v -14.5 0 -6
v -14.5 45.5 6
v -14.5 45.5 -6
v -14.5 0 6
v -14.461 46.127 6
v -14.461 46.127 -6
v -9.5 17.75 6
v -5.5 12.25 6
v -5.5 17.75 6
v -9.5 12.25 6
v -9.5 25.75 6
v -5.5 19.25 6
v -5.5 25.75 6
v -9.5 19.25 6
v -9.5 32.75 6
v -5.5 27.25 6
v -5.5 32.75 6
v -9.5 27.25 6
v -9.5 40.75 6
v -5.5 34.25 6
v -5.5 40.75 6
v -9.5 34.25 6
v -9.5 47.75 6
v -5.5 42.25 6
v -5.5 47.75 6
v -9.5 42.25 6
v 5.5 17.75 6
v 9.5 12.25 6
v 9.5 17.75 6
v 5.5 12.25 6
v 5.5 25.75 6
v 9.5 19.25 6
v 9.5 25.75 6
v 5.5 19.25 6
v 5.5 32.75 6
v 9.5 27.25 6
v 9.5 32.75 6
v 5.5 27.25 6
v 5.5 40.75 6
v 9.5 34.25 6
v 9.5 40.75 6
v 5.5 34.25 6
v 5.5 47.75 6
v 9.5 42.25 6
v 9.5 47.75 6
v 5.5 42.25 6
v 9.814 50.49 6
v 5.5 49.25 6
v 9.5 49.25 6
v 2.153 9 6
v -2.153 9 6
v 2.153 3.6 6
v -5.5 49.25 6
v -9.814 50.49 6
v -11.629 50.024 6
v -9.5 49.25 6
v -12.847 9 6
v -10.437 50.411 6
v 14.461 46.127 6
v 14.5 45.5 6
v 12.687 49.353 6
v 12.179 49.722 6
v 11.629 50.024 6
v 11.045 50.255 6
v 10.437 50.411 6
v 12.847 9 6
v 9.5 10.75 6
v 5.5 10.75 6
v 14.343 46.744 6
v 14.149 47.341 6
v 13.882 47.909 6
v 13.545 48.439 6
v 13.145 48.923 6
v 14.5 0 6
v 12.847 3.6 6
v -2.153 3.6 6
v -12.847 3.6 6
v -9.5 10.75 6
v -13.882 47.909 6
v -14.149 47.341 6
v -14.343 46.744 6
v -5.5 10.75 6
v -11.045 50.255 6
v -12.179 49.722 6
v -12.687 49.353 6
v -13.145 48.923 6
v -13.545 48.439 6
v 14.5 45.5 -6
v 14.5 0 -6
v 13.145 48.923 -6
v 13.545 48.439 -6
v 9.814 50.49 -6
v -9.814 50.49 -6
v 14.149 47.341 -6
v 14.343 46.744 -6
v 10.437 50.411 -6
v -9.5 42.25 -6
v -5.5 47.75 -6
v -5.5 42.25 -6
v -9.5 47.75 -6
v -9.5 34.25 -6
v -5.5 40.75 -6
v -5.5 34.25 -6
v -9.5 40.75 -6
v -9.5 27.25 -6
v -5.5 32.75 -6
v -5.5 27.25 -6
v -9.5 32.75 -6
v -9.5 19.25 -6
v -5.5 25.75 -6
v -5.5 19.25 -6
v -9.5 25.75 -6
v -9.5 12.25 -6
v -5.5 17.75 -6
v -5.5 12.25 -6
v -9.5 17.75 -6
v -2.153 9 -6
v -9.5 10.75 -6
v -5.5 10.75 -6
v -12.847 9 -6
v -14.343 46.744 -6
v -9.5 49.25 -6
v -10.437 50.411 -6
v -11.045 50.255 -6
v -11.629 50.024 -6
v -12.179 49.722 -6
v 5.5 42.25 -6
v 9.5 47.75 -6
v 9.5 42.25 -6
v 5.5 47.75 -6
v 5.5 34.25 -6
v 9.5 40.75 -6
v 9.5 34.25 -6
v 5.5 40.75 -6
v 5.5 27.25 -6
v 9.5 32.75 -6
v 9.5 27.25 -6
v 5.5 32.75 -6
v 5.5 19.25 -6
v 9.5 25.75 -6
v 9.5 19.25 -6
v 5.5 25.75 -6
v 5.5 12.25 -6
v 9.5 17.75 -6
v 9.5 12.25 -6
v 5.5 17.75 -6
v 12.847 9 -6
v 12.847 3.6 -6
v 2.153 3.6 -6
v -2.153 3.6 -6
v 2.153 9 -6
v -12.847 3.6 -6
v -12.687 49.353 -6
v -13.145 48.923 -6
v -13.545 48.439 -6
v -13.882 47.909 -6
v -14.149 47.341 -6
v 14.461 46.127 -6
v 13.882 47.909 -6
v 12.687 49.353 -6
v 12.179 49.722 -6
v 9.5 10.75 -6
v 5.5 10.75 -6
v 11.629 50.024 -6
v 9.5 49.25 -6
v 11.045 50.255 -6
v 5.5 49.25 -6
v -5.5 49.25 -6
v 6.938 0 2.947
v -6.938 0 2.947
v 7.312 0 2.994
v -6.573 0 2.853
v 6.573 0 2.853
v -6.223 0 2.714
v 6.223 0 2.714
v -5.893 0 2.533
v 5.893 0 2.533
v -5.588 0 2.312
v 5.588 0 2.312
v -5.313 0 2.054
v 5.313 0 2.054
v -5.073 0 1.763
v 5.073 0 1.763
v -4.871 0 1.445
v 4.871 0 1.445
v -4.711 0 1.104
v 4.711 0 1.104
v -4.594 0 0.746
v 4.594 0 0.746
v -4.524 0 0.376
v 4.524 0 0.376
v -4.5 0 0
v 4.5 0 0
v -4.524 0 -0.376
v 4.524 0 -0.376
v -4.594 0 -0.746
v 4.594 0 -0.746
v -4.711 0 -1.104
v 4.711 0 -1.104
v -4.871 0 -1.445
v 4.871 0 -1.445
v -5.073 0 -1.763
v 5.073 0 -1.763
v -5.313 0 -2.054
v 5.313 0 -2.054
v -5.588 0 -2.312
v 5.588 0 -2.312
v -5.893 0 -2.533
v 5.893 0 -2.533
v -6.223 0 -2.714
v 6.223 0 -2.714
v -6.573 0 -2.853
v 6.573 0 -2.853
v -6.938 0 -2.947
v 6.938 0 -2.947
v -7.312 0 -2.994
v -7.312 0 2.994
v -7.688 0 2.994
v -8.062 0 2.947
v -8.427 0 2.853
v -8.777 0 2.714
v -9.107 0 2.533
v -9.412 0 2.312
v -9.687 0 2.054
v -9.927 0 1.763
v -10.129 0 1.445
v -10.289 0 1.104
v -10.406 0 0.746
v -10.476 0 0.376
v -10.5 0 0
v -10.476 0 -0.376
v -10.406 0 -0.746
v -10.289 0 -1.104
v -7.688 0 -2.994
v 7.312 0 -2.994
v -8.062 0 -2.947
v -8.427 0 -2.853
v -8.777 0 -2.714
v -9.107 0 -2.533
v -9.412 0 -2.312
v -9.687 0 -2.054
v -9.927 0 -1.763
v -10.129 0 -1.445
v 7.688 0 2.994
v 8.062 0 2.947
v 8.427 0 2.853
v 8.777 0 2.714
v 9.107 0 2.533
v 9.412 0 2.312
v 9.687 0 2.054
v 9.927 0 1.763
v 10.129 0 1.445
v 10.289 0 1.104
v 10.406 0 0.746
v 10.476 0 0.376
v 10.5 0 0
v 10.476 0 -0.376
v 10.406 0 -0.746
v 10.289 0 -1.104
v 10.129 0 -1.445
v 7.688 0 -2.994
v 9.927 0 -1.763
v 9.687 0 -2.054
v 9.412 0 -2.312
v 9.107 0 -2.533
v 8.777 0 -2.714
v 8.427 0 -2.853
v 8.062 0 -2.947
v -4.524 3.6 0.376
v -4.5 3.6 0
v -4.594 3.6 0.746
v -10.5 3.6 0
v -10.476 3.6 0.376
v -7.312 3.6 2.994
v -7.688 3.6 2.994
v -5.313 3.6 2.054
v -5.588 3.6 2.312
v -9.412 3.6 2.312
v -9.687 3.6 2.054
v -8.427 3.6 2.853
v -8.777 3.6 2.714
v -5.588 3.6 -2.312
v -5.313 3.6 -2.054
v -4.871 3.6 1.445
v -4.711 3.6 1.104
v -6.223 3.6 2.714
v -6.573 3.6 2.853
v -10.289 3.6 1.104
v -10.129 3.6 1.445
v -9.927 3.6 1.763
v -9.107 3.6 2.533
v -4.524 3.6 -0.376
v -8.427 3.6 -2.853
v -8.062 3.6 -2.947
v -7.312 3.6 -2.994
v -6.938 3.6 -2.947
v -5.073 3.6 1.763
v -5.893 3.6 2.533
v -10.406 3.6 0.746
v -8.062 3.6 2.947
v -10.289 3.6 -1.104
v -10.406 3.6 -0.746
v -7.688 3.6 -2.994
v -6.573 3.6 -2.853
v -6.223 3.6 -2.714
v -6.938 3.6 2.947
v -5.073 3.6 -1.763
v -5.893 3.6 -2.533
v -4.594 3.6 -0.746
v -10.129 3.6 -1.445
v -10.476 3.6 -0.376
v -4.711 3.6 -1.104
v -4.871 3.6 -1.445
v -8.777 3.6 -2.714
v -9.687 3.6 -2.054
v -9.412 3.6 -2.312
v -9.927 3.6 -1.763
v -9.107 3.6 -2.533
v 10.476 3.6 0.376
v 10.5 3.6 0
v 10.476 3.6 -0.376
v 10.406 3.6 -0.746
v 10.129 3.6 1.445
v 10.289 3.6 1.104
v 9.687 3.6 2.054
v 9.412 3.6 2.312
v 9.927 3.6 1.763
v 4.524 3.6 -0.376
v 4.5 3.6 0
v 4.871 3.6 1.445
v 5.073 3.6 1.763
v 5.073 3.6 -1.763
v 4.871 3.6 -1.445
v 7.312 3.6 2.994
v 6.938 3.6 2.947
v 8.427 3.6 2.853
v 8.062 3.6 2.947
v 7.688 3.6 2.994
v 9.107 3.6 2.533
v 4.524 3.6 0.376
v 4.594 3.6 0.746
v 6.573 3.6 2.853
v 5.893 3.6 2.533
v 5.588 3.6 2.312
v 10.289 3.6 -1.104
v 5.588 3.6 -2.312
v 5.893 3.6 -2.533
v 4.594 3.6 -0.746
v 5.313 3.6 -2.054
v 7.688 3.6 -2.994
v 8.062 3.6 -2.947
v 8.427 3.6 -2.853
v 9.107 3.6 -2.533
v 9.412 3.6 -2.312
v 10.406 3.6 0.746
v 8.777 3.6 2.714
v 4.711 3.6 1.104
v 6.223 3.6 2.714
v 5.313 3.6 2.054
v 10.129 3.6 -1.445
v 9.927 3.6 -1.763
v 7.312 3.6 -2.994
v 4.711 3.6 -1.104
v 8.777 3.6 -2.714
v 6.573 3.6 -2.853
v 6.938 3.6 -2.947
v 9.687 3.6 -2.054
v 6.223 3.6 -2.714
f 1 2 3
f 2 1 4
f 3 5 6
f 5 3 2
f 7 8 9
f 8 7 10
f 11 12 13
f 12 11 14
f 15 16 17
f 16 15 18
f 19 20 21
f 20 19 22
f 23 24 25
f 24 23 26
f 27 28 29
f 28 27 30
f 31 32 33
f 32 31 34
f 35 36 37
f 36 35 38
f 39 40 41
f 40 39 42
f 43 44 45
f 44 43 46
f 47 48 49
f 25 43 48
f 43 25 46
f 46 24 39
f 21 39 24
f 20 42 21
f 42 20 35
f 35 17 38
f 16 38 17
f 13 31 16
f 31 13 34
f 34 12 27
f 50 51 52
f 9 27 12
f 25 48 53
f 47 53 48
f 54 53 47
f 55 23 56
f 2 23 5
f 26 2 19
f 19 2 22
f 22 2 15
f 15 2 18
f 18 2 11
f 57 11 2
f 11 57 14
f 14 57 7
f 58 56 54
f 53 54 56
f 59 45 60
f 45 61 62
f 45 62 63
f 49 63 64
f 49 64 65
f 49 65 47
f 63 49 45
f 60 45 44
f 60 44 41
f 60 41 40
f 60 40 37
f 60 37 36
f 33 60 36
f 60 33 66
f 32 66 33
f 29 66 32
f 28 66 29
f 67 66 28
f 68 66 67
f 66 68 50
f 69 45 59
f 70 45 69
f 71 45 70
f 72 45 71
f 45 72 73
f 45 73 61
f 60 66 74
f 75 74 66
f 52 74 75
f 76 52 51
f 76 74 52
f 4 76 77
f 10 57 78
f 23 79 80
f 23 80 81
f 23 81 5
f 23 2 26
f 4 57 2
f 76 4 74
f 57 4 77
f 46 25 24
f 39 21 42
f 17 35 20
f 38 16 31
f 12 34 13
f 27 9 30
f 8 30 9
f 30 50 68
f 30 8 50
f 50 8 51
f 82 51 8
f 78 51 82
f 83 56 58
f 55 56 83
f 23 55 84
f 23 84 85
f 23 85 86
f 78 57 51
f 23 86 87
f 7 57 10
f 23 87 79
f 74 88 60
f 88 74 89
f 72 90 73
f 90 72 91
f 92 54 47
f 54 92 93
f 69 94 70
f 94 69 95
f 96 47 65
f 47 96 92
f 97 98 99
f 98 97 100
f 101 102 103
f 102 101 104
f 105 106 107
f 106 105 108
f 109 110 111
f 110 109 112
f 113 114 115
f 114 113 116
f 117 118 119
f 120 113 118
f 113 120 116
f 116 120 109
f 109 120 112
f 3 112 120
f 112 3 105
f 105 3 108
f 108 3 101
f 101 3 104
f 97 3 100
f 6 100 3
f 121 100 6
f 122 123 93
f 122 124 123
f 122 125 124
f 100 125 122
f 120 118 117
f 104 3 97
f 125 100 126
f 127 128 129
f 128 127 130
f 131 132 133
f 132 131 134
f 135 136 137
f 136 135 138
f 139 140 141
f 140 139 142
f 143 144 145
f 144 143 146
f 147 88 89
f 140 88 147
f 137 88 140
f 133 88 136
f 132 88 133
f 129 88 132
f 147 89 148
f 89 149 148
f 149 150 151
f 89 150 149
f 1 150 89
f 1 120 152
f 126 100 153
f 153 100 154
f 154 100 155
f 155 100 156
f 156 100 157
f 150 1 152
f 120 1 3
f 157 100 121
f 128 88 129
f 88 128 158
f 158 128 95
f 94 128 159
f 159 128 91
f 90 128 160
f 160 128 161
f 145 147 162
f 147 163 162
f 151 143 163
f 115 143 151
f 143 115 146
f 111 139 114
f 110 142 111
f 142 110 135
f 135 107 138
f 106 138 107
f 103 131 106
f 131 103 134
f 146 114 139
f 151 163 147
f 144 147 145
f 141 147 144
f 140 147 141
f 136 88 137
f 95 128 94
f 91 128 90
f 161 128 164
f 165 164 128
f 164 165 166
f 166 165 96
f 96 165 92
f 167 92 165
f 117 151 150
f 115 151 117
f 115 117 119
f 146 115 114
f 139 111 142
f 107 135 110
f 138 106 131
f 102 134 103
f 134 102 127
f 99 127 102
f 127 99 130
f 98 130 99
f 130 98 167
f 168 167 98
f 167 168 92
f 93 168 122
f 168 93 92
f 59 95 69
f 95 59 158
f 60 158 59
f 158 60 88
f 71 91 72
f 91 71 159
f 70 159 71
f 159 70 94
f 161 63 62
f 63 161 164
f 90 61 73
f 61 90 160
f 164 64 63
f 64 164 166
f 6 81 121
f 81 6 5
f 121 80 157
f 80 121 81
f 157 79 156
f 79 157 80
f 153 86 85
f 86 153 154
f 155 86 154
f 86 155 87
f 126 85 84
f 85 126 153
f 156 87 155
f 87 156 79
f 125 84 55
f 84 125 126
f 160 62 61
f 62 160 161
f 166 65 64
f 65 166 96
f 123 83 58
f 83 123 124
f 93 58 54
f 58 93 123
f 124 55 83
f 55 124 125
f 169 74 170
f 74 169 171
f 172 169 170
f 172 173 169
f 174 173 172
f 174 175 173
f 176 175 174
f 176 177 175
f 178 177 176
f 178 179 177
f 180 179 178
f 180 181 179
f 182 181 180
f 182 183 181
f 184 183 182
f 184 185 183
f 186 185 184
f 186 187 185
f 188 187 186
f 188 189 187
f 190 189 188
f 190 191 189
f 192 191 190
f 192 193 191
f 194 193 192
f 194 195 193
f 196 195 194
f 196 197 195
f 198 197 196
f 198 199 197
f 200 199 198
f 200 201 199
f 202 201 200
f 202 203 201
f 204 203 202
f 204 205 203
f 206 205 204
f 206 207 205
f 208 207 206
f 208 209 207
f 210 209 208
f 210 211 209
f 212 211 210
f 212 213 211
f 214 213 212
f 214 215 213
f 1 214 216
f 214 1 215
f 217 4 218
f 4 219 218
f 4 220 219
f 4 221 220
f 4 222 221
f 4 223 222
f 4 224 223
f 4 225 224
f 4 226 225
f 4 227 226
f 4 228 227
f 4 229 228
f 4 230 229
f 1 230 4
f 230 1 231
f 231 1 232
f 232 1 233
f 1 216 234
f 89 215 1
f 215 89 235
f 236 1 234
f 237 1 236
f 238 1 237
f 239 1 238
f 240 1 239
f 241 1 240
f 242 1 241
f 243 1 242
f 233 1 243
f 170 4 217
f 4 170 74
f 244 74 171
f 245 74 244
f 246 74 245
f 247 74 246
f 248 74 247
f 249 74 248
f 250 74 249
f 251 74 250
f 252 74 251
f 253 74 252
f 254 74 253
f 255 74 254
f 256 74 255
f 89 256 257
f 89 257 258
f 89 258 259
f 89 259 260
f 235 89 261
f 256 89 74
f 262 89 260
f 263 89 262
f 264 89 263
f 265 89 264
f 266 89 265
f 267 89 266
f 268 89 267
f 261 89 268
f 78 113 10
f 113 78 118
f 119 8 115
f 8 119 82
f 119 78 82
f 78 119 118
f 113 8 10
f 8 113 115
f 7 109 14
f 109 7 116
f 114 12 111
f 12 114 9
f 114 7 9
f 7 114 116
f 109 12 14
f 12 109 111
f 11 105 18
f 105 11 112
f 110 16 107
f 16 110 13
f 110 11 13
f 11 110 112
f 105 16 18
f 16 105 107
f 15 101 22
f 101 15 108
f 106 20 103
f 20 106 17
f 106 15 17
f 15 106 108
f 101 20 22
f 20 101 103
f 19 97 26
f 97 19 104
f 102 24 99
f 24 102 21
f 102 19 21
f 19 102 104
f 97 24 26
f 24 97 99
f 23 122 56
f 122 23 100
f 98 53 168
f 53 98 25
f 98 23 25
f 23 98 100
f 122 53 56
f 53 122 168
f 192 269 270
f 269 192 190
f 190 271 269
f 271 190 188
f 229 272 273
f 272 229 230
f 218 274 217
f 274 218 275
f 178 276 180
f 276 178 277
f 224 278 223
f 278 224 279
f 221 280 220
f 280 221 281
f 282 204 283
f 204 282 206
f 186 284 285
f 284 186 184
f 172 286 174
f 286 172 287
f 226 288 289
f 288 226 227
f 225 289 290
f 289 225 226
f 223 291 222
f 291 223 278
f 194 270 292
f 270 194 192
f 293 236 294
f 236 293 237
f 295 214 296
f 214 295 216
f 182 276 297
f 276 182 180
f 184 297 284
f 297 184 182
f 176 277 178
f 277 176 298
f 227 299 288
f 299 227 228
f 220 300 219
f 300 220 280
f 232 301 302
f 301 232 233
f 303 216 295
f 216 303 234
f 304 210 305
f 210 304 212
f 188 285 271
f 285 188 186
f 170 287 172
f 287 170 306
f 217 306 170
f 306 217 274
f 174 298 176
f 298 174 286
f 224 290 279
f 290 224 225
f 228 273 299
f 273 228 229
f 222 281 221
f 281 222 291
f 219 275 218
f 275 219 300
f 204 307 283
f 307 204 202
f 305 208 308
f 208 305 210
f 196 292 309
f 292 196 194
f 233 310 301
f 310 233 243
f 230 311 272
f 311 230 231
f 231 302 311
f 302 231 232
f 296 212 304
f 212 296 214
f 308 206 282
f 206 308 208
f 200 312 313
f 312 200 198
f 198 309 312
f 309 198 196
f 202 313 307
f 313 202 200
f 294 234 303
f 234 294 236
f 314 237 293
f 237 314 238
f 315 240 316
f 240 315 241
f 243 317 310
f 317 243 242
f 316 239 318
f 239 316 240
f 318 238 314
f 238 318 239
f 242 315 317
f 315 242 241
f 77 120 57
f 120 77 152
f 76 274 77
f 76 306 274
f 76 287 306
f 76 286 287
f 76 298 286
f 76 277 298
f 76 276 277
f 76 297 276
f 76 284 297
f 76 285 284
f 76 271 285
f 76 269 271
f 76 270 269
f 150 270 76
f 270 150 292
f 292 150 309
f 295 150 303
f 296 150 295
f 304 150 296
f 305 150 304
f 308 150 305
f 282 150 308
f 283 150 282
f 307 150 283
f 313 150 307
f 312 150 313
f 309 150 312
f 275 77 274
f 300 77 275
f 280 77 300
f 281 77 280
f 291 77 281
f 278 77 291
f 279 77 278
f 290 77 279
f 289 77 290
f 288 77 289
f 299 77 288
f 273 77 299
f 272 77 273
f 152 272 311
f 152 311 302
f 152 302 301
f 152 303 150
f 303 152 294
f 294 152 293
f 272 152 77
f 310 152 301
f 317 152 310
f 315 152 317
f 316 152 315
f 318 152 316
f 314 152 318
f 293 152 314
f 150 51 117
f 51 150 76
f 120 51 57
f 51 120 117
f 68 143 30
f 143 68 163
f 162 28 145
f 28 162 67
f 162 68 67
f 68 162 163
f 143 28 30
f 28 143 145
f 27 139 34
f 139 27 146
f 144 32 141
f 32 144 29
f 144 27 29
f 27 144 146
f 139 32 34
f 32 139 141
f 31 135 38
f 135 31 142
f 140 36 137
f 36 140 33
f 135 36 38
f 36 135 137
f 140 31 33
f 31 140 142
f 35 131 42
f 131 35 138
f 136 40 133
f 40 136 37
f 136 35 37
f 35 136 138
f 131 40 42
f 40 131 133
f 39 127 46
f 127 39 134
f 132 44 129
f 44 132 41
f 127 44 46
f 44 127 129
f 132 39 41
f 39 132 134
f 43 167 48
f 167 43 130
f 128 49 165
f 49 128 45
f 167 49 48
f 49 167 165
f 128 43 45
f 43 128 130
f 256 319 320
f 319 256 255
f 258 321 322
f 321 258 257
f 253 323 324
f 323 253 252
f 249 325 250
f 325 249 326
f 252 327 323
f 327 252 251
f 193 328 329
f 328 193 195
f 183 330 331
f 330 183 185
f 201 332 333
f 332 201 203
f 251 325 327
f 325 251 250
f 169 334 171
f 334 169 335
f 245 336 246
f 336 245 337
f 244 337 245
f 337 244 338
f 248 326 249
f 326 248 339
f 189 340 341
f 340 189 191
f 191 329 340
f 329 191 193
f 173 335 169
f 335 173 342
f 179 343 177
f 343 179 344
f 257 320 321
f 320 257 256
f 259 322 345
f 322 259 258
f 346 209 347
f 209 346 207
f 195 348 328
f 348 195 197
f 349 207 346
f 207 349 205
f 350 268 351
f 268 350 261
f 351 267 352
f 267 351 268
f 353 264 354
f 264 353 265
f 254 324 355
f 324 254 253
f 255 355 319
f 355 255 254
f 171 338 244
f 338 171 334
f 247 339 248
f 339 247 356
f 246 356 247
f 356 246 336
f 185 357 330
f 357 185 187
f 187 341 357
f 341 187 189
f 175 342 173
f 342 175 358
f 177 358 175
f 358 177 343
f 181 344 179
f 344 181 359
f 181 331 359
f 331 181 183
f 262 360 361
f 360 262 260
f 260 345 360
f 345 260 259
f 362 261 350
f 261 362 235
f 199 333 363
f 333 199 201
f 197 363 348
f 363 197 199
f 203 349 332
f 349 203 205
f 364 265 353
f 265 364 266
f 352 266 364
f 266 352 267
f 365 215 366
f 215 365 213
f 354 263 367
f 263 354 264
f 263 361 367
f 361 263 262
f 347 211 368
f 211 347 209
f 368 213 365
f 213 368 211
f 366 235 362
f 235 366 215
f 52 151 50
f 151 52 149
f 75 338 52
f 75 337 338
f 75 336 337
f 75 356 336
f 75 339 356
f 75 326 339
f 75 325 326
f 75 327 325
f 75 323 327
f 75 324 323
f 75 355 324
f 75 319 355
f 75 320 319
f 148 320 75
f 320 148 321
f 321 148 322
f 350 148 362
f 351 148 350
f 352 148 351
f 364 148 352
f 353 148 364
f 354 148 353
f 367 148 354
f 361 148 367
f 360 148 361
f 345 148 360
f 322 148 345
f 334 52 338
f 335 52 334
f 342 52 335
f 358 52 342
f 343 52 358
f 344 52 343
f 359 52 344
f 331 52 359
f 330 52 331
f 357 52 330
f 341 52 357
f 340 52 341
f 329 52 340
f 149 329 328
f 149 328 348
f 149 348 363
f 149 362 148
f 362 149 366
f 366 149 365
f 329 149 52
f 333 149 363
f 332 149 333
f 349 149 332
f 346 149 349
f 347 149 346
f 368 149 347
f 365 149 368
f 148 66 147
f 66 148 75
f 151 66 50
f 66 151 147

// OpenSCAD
$fn = 50;


difference() {
	union() {
		translate(v = [0, 28.5000000000, -6.0000000000]) {
			rotate(a = [0, 0, 0]) {
				hull() {
					translate(v = [-9.5000000000, 17.0000000000, 0]) {
						rotate(a = [0, 0, 0]) {
							translate(v = [0, 0, 0]) {
								rotate(a = [0, 0, 0]) {
									cylinder(h = 12, r = 5);
								}
							}
						}
					}
					translate(v = [9.5000000000, 17.0000000000, 0]) {
						rotate(a = [0, 0, 0]) {
							translate(v = [0, 0, 0]) {
								rotate(a = [0, 0, 0]) {
									cylinder(h = 12, r = 5);
								}
							}
						}
					}
					translate(v = [-9.5000000000, -17.0000000000, 0]) {
						rotate(a = [0, 0, 0]) {
							translate(v = [0, 0, 0]) {
								rotate(a = [0, 0, 0]) {
									cylinder(h = 12, r = 5);
								}
							}
						}
					}
					translate(v = [9.5000000000, -17.0000000000, 0]) {
						rotate(a = [0, 0, 0]) {
							translate(v = [0, 0, 0]) {
								rotate(a = [0, 0, 0]) {
									cylinder(h = 12, r = 5);
								}
							}
						}
					}
				}
			}
		}
		translate(v = [-14.5000000000, 0, -6.0000000000]) {
			rotate(a = [0, 0, 0]) {
				cube(size = [29, 13.5000000000, 12]);
			}
		}
	}
	union() {
		translate(v = [-9.5000000000, 10.7500000000, -50]) {
			rotate(a = [0, 0, 0]) {
				cube(size = [4, 1.5000000000, 100]);
			}
		}
		translate(v = [-9.5000000000, 17.7500000000, -50]) {
			rotate(a = [0, 0, 0]) {
				cube(size = [4, 1.5000000000, 100]);
			}
		}
		translate(v = [-9.5000000000, 25.7500000000, -50]) {
			rotate(a = [0, 0, 0]) {
				cube(size = [4, 1.5000000000, 100]);
			}
		}
		translate(v = [-9.5000000000, 32.7500000000, -50]) {
			rotate(a = [0, 0, 0]) {
				cube(size = [4, 1.5000000000, 100]);
			}
		}
		translate(v = [-9.5000000000, 40.7500000000, -50]) {
			rotate(a = [0, 0, 0]) {
				cube(size = [4, 1.5000000000, 100]);
			}
		}
		translate(v = [-9.5000000000, 47.7500000000, -50]) {
			rotate(a = [0, 0, 0]) {
				cube(size = [4, 1.5000000000, 100]);
			}
		}
		translate(v = [-7.5000000000, 8, 0]) {
			rotate(a = [90, 0, 0]) {
				cylinder(h = 8, r = 3.0000000000);
			}
		}
		translate(v = [-12.8466204506, 9, -25]) {
			rotate(a = [90, 0, 0]) {
				cube(size = [10.6932409012, 100, 5.4000000000]);
			}
		}
		translate(v = [5.5000000000, 10.7500000000, -50]) {
			rotate(a = [0, 0, 0]) {
				cube(size = [4, 1.5000000000, 100]);
			}
		}
		translate(v = [5.5000000000, 17.7500000000, -50]) {
			rotate(a = [0, 0, 0]) {
				cube(size = [4, 1.5000000000, 100]);
			}
		}
		translate(v = [5.5000000000, 25.7500000000, -50]) {
			rotate(a = [0, 0, 0]) {
				cube(size = [4, 1.5000000000, 100]);
			}
		}
		translate(v = [5.5000000000, 32.7500000000, -50]) {
			rotate(a = [0, 0, 0]) {
				cube(size = [4, 1.5000000000, 100]);
			}
		}
		translate(v = [5.5000000000, 40.7500000000, -50]) {
			rotate(a = [0, 0, 0]) {
				cube(size = [4, 1.5000000000, 100]);
			}
		}
		translate(v = [5.5000000000, 47.7500000000, -50]) {
			rotate(a = [0, 0, 0]) {
				cube(size = [4, 1.5000000000, 100]);
			}
		}
		translate(v = [7.5000000000, 8, 0]) {
			rotate(a = [90, 0, 0]) {
				cylinder(h = 8, r = 3.0000000000);
			}
		}
		translate(v = [2.1533795494, 9, -25]) {
			rotate(a = [90, 0, 0]) {
				cube(size = [10.6932409012, 100, 5.4000000000]);
			}
		}
	}
}
